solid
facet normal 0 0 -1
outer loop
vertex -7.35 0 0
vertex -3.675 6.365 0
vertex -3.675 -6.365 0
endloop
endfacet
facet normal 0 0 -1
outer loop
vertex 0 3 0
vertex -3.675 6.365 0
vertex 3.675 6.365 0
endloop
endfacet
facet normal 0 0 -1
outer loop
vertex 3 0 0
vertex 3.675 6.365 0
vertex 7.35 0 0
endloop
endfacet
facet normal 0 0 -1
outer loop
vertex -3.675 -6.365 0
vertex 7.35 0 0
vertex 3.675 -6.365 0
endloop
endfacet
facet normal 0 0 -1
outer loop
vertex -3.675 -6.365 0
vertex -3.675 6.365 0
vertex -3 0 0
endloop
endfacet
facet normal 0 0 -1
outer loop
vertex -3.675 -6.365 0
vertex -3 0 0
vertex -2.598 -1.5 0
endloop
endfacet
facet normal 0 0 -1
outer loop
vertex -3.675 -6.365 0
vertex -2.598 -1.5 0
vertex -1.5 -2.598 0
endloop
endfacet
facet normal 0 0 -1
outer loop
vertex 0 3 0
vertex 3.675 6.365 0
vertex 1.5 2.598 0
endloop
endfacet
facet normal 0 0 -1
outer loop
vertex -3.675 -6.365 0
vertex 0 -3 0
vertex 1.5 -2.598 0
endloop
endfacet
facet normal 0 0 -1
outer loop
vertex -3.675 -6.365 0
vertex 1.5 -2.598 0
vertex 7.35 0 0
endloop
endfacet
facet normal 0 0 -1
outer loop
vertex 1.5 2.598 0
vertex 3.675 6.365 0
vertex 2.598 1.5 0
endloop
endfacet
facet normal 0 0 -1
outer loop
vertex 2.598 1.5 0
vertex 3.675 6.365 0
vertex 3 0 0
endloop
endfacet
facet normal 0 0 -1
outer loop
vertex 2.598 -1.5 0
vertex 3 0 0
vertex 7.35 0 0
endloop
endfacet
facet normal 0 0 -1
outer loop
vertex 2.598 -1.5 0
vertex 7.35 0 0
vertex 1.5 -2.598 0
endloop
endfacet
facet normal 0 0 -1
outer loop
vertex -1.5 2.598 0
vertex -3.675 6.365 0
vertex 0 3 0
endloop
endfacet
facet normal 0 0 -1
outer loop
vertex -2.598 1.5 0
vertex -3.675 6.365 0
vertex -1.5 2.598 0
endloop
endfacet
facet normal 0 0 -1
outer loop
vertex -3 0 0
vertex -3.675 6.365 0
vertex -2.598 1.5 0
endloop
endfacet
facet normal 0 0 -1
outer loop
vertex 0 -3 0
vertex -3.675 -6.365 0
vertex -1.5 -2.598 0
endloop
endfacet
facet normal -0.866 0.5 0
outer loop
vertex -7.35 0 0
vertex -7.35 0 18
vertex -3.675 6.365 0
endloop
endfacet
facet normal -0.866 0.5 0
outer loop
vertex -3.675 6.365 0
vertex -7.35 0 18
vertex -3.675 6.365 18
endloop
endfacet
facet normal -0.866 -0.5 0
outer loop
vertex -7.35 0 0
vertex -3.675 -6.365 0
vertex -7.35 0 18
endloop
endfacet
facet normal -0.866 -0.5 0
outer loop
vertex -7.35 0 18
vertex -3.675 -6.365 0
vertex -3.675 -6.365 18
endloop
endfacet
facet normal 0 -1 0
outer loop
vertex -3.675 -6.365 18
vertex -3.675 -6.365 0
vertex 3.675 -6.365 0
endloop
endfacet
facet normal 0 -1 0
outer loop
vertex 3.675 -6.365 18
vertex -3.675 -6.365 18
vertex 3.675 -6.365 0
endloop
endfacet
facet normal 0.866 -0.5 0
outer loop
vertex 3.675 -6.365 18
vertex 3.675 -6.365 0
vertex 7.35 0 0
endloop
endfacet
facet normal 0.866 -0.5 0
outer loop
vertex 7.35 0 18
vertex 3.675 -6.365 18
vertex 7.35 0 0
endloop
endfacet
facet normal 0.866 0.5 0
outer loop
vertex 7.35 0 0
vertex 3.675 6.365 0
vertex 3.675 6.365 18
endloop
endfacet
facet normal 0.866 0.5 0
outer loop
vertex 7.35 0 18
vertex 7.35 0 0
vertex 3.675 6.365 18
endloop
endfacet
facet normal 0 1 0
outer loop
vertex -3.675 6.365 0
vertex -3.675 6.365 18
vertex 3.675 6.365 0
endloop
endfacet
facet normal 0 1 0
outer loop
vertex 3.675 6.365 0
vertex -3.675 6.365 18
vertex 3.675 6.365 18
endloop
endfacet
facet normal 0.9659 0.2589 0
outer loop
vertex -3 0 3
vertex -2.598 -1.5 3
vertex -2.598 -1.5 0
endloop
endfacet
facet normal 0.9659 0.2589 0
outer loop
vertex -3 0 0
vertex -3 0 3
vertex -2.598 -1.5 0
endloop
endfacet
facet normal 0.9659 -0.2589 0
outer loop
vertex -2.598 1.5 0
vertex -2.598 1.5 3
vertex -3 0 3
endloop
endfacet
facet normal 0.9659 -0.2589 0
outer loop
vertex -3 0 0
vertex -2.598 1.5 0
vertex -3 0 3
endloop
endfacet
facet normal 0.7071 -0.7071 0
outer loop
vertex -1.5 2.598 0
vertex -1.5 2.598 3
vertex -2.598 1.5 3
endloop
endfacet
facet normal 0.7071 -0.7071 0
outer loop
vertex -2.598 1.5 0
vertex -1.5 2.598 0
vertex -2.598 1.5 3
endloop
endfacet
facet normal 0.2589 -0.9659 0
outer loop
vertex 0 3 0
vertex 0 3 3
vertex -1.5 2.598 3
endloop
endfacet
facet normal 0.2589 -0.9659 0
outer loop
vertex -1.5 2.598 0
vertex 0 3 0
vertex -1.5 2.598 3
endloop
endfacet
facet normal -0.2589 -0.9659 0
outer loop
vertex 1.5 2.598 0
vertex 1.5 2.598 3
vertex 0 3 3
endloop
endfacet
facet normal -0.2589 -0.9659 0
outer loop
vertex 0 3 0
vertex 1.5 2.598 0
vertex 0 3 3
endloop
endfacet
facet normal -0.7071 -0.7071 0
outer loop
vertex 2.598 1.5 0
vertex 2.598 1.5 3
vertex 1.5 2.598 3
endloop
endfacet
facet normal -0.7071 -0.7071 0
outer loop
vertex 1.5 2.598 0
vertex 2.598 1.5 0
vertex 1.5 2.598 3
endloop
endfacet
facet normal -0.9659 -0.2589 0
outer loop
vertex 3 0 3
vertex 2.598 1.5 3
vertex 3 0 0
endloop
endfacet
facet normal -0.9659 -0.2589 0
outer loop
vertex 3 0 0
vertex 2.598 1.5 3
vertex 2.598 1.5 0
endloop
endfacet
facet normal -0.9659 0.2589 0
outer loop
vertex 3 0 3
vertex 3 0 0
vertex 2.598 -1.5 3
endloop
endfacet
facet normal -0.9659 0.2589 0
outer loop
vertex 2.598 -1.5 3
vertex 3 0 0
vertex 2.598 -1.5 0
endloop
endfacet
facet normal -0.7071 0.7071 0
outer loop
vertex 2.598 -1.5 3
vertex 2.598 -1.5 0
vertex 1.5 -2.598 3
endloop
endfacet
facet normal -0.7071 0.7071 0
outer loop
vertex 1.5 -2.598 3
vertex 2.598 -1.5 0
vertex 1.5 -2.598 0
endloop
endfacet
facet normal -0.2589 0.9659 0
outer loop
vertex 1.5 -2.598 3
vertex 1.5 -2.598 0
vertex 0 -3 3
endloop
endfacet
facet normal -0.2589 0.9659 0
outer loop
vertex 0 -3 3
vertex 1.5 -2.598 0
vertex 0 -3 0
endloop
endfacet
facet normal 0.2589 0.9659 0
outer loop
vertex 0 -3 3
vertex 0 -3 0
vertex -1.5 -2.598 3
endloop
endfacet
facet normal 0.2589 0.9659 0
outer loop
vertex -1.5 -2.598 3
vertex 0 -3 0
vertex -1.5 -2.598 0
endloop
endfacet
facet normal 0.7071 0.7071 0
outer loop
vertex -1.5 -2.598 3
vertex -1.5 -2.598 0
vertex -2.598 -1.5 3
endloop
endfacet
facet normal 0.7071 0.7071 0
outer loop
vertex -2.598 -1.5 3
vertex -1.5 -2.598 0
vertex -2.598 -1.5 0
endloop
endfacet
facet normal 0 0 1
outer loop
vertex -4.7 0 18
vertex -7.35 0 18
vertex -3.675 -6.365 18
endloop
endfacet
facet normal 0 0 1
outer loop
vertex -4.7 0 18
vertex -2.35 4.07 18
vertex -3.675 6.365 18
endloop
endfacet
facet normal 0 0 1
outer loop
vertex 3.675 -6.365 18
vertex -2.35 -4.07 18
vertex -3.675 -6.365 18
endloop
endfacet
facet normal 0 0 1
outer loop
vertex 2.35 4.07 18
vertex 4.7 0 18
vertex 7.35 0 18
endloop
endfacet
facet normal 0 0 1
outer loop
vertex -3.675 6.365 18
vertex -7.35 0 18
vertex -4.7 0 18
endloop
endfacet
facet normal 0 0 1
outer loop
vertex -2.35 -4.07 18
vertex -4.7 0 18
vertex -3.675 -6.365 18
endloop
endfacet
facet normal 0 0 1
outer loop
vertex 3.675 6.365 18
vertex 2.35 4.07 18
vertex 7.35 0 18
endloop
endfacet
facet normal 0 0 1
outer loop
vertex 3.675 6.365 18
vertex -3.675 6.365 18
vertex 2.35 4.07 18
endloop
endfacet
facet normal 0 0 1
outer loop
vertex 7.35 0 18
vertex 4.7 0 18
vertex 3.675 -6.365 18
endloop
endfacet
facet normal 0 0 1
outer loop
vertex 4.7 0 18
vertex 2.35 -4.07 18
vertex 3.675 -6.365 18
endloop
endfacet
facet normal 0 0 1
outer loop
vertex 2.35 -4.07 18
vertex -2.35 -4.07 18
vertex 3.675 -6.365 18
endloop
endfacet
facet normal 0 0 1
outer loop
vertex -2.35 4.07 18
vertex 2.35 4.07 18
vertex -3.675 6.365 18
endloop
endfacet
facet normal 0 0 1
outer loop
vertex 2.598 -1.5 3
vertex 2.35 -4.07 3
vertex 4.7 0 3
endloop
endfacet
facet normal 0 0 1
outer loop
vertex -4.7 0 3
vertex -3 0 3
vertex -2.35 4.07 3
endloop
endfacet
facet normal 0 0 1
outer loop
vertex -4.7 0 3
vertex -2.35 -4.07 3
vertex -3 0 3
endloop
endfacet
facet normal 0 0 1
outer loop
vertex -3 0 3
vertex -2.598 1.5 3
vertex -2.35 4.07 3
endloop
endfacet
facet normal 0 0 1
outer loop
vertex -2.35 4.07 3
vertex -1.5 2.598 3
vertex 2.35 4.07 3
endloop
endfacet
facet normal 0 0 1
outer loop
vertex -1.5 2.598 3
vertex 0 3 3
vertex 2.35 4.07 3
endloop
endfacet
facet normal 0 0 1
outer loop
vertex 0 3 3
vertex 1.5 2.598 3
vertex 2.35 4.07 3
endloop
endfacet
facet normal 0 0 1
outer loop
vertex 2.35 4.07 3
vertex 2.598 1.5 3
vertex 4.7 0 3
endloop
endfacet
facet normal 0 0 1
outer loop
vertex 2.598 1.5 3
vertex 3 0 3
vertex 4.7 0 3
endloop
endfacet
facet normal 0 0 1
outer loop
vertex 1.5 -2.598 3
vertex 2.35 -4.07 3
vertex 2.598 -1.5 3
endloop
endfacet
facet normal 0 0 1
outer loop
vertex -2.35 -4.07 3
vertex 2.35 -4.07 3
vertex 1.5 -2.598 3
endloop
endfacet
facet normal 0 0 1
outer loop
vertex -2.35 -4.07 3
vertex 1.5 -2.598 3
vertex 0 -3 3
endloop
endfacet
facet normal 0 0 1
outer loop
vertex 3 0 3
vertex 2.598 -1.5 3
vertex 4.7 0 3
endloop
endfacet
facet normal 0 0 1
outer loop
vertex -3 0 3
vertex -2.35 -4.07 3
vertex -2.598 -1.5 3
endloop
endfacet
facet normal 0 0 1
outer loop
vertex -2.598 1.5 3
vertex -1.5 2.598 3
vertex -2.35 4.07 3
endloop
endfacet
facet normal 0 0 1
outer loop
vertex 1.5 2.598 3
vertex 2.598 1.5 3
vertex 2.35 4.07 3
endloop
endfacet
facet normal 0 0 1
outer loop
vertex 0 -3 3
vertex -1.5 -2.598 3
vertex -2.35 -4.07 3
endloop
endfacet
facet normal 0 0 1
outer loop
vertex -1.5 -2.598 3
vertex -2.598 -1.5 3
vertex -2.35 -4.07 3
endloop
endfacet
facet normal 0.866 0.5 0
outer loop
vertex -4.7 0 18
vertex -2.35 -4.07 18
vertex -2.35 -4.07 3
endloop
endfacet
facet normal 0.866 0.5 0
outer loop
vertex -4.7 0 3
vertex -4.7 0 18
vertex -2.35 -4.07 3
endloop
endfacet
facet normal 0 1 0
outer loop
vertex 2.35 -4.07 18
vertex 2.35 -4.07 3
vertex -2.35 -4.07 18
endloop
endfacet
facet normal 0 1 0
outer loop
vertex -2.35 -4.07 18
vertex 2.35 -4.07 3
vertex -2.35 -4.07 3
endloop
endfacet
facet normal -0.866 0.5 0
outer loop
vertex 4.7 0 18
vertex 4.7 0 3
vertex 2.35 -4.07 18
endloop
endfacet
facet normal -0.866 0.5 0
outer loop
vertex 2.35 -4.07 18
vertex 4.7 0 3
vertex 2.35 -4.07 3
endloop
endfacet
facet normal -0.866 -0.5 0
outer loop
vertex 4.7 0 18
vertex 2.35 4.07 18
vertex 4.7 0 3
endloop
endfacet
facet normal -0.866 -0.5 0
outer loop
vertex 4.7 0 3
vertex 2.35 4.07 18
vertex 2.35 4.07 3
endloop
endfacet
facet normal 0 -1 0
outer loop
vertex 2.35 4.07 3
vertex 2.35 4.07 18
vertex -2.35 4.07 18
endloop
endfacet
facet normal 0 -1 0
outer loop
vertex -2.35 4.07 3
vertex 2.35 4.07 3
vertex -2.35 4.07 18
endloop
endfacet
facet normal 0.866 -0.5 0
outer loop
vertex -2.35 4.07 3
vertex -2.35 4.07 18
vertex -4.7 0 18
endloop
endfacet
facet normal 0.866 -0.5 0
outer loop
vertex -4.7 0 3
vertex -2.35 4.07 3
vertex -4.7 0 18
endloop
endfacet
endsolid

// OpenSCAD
delta=0.4;
d1=14.7;
d2=9.0+delta;
h=18;
//cube(12.7,true);
//cube(7.8,true);
difference() {
	cylinder($fa=60,r=d1/2,h=h);
	translate([0,0,3]) cylinder($fa=60,r=d2/2,h=h);
	cylinder($fn=12,r=2.6+delta,h=5);
}
